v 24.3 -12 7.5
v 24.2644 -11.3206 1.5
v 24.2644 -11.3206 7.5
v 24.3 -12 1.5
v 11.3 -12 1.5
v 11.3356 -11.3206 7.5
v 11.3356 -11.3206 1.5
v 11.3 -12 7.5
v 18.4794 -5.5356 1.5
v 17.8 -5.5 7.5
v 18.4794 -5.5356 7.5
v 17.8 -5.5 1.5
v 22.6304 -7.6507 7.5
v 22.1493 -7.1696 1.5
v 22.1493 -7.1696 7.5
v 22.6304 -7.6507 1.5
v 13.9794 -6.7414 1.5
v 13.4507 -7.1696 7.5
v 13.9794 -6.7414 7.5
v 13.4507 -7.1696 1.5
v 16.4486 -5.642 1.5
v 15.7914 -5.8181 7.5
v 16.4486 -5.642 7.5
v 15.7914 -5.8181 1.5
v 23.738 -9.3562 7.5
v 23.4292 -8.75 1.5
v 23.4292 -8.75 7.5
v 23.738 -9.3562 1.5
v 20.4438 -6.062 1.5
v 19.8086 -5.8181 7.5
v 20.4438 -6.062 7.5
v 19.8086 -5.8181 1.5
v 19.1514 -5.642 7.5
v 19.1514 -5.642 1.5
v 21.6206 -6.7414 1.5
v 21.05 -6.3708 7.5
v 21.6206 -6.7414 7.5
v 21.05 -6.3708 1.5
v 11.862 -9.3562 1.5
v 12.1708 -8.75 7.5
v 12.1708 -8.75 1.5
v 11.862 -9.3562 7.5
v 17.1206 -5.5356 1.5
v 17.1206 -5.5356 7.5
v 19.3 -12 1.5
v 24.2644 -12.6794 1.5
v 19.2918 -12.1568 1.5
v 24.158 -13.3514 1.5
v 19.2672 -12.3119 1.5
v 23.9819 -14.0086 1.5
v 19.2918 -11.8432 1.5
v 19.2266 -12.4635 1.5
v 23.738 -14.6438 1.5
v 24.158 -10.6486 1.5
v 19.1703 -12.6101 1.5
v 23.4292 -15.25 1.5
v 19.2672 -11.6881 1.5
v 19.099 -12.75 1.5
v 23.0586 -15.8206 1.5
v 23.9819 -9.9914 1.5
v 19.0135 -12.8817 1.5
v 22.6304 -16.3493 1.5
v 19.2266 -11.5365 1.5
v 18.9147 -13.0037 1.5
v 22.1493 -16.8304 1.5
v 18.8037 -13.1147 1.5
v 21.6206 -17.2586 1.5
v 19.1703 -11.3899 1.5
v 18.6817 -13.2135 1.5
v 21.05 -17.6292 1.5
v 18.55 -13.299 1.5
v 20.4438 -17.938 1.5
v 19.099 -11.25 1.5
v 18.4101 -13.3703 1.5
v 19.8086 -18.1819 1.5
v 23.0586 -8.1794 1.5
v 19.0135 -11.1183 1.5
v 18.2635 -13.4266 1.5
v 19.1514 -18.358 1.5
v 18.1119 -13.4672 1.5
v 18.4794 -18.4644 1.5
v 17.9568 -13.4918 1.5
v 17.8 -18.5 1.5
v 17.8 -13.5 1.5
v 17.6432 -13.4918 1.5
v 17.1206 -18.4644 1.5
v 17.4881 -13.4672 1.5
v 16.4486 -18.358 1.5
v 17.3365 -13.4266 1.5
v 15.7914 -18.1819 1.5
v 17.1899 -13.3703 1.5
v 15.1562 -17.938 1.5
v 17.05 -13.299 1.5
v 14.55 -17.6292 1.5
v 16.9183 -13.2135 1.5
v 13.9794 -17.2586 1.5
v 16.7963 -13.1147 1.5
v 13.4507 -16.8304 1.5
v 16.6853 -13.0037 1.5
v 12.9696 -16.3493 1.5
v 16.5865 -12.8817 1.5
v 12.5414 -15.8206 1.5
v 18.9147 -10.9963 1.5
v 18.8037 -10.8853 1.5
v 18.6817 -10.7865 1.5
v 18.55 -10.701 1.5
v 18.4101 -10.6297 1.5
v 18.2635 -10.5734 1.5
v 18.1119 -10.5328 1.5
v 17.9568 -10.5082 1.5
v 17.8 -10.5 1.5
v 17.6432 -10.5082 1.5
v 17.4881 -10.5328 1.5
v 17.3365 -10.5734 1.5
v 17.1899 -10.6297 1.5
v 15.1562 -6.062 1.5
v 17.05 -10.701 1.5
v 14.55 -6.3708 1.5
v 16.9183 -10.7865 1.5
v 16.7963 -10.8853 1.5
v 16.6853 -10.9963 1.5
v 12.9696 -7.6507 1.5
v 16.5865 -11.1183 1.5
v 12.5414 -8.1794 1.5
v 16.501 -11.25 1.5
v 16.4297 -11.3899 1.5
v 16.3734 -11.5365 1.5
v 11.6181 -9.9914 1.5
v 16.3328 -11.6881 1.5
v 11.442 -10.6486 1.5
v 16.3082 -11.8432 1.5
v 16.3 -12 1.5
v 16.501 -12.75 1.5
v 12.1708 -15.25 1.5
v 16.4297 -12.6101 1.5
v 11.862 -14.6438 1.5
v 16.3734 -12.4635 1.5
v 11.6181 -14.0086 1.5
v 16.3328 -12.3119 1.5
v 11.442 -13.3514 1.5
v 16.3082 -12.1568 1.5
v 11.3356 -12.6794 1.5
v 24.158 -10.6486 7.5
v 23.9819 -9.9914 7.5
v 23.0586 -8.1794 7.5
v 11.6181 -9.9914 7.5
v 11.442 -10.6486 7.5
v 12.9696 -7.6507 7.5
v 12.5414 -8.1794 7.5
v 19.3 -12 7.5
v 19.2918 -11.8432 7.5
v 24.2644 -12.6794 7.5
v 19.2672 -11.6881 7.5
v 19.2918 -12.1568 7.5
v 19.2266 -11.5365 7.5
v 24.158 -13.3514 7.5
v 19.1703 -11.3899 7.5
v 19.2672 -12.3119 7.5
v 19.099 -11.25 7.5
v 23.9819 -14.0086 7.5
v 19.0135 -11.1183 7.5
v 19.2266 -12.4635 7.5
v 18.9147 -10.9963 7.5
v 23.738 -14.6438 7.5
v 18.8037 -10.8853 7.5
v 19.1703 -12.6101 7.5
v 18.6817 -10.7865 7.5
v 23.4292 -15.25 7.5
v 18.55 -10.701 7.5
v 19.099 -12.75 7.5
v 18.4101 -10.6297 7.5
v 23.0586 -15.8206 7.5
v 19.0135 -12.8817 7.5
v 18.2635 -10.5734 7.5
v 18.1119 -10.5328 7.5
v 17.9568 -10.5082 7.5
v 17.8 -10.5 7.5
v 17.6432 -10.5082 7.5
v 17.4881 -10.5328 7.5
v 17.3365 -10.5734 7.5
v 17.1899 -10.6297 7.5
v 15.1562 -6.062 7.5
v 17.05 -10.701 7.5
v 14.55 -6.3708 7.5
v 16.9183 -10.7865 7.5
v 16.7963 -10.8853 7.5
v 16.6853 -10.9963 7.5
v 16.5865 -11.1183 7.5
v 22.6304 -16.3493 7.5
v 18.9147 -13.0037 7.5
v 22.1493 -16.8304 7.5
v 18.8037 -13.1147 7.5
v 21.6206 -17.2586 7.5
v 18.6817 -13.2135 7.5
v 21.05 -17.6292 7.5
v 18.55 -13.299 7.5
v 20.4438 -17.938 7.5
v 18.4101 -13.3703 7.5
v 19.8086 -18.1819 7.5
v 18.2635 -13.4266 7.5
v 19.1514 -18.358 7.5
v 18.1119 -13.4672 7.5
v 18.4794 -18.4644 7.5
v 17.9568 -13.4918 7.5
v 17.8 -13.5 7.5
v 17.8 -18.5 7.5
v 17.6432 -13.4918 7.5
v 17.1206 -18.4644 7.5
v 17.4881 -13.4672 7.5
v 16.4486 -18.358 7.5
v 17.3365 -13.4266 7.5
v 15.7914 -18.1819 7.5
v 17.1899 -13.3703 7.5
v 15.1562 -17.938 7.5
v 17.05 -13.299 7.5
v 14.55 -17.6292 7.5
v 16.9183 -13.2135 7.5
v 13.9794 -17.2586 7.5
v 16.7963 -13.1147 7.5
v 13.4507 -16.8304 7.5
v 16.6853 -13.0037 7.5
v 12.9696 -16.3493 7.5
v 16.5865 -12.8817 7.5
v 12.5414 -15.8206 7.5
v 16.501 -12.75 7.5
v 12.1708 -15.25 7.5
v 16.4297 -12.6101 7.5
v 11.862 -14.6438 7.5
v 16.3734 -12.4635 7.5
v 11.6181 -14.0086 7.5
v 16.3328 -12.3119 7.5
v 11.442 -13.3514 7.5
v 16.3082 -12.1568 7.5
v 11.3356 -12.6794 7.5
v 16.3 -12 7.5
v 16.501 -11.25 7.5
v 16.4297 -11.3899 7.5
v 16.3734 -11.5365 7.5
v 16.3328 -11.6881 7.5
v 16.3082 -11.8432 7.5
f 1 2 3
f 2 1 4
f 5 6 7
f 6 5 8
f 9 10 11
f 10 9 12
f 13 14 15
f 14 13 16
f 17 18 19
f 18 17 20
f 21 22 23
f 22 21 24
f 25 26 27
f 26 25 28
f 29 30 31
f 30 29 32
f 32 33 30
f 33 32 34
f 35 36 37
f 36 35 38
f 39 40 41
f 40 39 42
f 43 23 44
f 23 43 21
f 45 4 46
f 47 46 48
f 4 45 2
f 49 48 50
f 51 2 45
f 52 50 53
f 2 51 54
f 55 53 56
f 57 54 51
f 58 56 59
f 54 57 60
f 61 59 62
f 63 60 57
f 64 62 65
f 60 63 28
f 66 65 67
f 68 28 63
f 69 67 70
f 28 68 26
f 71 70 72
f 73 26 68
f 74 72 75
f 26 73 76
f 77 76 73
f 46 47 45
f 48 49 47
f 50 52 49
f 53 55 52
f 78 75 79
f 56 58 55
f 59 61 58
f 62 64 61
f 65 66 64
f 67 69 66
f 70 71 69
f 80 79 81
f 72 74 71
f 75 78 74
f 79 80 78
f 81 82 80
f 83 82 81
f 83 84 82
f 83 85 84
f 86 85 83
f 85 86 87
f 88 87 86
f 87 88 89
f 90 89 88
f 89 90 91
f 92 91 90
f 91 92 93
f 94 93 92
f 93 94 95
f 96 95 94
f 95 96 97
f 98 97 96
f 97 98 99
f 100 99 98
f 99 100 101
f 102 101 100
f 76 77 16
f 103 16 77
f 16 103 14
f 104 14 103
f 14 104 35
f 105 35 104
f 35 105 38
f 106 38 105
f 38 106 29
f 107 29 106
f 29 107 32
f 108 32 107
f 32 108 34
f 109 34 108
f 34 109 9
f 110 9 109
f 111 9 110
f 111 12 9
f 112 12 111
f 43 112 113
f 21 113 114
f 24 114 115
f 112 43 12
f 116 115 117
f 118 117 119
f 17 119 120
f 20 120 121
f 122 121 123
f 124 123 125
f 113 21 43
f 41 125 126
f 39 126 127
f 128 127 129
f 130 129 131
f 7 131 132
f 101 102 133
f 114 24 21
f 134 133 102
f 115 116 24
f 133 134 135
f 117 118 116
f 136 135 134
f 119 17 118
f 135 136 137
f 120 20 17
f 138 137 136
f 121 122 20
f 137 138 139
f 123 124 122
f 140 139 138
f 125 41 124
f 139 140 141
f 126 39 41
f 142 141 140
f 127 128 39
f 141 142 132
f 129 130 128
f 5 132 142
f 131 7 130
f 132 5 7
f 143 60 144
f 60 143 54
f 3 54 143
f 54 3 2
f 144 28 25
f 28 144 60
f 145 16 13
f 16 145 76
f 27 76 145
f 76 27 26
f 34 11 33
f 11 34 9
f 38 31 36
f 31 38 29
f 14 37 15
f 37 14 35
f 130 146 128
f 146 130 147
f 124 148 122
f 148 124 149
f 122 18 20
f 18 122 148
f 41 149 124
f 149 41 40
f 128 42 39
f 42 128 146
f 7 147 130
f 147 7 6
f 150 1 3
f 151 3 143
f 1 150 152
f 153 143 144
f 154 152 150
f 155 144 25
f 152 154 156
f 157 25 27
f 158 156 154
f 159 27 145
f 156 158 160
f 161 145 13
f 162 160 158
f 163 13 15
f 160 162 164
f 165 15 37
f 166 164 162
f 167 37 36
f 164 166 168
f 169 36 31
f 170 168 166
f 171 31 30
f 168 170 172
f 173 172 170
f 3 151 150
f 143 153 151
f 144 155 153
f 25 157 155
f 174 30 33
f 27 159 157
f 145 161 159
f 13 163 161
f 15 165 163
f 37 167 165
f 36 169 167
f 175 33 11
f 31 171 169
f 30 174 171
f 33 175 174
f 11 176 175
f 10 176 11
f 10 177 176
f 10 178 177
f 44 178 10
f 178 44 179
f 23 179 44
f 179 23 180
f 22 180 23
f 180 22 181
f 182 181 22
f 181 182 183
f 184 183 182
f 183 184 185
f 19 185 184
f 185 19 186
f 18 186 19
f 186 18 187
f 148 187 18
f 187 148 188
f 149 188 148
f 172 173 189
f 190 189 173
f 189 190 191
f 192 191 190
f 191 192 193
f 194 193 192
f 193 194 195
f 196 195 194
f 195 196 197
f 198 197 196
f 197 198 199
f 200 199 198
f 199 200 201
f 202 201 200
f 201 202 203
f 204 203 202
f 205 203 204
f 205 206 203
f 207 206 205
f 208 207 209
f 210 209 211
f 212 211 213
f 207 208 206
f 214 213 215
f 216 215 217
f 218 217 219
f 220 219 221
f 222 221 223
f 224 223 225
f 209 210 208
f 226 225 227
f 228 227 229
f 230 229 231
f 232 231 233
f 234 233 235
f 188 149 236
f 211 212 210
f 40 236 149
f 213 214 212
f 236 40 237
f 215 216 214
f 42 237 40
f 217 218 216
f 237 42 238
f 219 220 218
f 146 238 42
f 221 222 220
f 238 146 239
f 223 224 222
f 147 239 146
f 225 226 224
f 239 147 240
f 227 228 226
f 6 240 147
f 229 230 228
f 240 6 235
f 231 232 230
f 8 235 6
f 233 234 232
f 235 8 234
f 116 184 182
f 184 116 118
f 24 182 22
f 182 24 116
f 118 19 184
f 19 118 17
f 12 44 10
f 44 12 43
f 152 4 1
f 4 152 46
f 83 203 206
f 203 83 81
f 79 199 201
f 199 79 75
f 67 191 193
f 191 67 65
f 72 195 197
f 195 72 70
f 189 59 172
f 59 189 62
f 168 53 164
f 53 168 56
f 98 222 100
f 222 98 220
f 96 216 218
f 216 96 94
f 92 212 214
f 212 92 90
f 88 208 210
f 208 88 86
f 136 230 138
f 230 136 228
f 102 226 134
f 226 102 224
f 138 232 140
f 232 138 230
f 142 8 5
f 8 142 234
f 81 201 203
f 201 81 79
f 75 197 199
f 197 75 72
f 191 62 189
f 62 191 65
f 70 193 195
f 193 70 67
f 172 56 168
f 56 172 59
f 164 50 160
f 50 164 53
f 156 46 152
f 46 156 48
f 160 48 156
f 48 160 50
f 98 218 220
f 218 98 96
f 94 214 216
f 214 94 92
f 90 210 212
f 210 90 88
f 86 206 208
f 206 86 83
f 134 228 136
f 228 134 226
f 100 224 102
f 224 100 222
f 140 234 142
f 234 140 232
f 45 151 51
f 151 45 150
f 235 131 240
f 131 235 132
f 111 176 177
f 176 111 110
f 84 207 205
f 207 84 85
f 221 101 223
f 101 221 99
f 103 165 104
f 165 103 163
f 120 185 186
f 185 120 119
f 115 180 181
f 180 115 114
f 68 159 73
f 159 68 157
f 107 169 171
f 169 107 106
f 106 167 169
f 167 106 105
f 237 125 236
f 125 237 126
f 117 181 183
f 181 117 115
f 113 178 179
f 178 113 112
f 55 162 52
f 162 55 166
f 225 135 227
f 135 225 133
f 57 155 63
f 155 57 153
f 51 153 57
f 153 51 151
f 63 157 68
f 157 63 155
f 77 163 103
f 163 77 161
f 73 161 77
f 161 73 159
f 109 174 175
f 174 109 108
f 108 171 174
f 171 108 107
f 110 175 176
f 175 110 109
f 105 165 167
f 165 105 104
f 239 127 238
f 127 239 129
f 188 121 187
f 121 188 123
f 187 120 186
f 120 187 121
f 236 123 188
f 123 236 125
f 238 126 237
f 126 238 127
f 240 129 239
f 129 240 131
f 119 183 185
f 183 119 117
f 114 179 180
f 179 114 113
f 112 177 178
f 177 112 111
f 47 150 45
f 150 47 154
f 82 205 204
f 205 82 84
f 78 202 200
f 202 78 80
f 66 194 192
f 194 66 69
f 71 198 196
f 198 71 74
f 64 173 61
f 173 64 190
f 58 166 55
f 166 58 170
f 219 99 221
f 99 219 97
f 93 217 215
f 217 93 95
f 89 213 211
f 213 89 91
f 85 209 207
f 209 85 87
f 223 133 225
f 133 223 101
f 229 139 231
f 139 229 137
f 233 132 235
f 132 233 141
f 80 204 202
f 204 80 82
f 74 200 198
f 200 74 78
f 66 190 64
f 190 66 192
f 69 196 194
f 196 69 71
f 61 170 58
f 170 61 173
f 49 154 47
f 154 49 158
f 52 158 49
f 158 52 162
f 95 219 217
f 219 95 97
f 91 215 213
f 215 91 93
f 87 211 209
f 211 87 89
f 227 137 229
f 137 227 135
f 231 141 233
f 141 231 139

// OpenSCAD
/*
*******************************************
Objekt Info: Greifarm_LC Distanzhüle 

*******************************************
Version: 14.11.2026 khf
*******************************************
*/

//***************   Auswahl   *************

//keine

//***************   Libraries  ************

//keine

//*****************************************

//***************  Parameter   *************
$fn=60;
//*****************************************

//**************   Programm  **************

//-----------------------------------

color( "blue", 1.0 ) {
translate(v = [17.8, -12, 1.5]) {
    
difference() {
    
cylinder(h = 6, d = 13); //V1=7mm V2=6mm
  translate(v = [0, 0, -2]) { 
          cylinder(h = 10, d = 3);
    }
   }
  }
}
